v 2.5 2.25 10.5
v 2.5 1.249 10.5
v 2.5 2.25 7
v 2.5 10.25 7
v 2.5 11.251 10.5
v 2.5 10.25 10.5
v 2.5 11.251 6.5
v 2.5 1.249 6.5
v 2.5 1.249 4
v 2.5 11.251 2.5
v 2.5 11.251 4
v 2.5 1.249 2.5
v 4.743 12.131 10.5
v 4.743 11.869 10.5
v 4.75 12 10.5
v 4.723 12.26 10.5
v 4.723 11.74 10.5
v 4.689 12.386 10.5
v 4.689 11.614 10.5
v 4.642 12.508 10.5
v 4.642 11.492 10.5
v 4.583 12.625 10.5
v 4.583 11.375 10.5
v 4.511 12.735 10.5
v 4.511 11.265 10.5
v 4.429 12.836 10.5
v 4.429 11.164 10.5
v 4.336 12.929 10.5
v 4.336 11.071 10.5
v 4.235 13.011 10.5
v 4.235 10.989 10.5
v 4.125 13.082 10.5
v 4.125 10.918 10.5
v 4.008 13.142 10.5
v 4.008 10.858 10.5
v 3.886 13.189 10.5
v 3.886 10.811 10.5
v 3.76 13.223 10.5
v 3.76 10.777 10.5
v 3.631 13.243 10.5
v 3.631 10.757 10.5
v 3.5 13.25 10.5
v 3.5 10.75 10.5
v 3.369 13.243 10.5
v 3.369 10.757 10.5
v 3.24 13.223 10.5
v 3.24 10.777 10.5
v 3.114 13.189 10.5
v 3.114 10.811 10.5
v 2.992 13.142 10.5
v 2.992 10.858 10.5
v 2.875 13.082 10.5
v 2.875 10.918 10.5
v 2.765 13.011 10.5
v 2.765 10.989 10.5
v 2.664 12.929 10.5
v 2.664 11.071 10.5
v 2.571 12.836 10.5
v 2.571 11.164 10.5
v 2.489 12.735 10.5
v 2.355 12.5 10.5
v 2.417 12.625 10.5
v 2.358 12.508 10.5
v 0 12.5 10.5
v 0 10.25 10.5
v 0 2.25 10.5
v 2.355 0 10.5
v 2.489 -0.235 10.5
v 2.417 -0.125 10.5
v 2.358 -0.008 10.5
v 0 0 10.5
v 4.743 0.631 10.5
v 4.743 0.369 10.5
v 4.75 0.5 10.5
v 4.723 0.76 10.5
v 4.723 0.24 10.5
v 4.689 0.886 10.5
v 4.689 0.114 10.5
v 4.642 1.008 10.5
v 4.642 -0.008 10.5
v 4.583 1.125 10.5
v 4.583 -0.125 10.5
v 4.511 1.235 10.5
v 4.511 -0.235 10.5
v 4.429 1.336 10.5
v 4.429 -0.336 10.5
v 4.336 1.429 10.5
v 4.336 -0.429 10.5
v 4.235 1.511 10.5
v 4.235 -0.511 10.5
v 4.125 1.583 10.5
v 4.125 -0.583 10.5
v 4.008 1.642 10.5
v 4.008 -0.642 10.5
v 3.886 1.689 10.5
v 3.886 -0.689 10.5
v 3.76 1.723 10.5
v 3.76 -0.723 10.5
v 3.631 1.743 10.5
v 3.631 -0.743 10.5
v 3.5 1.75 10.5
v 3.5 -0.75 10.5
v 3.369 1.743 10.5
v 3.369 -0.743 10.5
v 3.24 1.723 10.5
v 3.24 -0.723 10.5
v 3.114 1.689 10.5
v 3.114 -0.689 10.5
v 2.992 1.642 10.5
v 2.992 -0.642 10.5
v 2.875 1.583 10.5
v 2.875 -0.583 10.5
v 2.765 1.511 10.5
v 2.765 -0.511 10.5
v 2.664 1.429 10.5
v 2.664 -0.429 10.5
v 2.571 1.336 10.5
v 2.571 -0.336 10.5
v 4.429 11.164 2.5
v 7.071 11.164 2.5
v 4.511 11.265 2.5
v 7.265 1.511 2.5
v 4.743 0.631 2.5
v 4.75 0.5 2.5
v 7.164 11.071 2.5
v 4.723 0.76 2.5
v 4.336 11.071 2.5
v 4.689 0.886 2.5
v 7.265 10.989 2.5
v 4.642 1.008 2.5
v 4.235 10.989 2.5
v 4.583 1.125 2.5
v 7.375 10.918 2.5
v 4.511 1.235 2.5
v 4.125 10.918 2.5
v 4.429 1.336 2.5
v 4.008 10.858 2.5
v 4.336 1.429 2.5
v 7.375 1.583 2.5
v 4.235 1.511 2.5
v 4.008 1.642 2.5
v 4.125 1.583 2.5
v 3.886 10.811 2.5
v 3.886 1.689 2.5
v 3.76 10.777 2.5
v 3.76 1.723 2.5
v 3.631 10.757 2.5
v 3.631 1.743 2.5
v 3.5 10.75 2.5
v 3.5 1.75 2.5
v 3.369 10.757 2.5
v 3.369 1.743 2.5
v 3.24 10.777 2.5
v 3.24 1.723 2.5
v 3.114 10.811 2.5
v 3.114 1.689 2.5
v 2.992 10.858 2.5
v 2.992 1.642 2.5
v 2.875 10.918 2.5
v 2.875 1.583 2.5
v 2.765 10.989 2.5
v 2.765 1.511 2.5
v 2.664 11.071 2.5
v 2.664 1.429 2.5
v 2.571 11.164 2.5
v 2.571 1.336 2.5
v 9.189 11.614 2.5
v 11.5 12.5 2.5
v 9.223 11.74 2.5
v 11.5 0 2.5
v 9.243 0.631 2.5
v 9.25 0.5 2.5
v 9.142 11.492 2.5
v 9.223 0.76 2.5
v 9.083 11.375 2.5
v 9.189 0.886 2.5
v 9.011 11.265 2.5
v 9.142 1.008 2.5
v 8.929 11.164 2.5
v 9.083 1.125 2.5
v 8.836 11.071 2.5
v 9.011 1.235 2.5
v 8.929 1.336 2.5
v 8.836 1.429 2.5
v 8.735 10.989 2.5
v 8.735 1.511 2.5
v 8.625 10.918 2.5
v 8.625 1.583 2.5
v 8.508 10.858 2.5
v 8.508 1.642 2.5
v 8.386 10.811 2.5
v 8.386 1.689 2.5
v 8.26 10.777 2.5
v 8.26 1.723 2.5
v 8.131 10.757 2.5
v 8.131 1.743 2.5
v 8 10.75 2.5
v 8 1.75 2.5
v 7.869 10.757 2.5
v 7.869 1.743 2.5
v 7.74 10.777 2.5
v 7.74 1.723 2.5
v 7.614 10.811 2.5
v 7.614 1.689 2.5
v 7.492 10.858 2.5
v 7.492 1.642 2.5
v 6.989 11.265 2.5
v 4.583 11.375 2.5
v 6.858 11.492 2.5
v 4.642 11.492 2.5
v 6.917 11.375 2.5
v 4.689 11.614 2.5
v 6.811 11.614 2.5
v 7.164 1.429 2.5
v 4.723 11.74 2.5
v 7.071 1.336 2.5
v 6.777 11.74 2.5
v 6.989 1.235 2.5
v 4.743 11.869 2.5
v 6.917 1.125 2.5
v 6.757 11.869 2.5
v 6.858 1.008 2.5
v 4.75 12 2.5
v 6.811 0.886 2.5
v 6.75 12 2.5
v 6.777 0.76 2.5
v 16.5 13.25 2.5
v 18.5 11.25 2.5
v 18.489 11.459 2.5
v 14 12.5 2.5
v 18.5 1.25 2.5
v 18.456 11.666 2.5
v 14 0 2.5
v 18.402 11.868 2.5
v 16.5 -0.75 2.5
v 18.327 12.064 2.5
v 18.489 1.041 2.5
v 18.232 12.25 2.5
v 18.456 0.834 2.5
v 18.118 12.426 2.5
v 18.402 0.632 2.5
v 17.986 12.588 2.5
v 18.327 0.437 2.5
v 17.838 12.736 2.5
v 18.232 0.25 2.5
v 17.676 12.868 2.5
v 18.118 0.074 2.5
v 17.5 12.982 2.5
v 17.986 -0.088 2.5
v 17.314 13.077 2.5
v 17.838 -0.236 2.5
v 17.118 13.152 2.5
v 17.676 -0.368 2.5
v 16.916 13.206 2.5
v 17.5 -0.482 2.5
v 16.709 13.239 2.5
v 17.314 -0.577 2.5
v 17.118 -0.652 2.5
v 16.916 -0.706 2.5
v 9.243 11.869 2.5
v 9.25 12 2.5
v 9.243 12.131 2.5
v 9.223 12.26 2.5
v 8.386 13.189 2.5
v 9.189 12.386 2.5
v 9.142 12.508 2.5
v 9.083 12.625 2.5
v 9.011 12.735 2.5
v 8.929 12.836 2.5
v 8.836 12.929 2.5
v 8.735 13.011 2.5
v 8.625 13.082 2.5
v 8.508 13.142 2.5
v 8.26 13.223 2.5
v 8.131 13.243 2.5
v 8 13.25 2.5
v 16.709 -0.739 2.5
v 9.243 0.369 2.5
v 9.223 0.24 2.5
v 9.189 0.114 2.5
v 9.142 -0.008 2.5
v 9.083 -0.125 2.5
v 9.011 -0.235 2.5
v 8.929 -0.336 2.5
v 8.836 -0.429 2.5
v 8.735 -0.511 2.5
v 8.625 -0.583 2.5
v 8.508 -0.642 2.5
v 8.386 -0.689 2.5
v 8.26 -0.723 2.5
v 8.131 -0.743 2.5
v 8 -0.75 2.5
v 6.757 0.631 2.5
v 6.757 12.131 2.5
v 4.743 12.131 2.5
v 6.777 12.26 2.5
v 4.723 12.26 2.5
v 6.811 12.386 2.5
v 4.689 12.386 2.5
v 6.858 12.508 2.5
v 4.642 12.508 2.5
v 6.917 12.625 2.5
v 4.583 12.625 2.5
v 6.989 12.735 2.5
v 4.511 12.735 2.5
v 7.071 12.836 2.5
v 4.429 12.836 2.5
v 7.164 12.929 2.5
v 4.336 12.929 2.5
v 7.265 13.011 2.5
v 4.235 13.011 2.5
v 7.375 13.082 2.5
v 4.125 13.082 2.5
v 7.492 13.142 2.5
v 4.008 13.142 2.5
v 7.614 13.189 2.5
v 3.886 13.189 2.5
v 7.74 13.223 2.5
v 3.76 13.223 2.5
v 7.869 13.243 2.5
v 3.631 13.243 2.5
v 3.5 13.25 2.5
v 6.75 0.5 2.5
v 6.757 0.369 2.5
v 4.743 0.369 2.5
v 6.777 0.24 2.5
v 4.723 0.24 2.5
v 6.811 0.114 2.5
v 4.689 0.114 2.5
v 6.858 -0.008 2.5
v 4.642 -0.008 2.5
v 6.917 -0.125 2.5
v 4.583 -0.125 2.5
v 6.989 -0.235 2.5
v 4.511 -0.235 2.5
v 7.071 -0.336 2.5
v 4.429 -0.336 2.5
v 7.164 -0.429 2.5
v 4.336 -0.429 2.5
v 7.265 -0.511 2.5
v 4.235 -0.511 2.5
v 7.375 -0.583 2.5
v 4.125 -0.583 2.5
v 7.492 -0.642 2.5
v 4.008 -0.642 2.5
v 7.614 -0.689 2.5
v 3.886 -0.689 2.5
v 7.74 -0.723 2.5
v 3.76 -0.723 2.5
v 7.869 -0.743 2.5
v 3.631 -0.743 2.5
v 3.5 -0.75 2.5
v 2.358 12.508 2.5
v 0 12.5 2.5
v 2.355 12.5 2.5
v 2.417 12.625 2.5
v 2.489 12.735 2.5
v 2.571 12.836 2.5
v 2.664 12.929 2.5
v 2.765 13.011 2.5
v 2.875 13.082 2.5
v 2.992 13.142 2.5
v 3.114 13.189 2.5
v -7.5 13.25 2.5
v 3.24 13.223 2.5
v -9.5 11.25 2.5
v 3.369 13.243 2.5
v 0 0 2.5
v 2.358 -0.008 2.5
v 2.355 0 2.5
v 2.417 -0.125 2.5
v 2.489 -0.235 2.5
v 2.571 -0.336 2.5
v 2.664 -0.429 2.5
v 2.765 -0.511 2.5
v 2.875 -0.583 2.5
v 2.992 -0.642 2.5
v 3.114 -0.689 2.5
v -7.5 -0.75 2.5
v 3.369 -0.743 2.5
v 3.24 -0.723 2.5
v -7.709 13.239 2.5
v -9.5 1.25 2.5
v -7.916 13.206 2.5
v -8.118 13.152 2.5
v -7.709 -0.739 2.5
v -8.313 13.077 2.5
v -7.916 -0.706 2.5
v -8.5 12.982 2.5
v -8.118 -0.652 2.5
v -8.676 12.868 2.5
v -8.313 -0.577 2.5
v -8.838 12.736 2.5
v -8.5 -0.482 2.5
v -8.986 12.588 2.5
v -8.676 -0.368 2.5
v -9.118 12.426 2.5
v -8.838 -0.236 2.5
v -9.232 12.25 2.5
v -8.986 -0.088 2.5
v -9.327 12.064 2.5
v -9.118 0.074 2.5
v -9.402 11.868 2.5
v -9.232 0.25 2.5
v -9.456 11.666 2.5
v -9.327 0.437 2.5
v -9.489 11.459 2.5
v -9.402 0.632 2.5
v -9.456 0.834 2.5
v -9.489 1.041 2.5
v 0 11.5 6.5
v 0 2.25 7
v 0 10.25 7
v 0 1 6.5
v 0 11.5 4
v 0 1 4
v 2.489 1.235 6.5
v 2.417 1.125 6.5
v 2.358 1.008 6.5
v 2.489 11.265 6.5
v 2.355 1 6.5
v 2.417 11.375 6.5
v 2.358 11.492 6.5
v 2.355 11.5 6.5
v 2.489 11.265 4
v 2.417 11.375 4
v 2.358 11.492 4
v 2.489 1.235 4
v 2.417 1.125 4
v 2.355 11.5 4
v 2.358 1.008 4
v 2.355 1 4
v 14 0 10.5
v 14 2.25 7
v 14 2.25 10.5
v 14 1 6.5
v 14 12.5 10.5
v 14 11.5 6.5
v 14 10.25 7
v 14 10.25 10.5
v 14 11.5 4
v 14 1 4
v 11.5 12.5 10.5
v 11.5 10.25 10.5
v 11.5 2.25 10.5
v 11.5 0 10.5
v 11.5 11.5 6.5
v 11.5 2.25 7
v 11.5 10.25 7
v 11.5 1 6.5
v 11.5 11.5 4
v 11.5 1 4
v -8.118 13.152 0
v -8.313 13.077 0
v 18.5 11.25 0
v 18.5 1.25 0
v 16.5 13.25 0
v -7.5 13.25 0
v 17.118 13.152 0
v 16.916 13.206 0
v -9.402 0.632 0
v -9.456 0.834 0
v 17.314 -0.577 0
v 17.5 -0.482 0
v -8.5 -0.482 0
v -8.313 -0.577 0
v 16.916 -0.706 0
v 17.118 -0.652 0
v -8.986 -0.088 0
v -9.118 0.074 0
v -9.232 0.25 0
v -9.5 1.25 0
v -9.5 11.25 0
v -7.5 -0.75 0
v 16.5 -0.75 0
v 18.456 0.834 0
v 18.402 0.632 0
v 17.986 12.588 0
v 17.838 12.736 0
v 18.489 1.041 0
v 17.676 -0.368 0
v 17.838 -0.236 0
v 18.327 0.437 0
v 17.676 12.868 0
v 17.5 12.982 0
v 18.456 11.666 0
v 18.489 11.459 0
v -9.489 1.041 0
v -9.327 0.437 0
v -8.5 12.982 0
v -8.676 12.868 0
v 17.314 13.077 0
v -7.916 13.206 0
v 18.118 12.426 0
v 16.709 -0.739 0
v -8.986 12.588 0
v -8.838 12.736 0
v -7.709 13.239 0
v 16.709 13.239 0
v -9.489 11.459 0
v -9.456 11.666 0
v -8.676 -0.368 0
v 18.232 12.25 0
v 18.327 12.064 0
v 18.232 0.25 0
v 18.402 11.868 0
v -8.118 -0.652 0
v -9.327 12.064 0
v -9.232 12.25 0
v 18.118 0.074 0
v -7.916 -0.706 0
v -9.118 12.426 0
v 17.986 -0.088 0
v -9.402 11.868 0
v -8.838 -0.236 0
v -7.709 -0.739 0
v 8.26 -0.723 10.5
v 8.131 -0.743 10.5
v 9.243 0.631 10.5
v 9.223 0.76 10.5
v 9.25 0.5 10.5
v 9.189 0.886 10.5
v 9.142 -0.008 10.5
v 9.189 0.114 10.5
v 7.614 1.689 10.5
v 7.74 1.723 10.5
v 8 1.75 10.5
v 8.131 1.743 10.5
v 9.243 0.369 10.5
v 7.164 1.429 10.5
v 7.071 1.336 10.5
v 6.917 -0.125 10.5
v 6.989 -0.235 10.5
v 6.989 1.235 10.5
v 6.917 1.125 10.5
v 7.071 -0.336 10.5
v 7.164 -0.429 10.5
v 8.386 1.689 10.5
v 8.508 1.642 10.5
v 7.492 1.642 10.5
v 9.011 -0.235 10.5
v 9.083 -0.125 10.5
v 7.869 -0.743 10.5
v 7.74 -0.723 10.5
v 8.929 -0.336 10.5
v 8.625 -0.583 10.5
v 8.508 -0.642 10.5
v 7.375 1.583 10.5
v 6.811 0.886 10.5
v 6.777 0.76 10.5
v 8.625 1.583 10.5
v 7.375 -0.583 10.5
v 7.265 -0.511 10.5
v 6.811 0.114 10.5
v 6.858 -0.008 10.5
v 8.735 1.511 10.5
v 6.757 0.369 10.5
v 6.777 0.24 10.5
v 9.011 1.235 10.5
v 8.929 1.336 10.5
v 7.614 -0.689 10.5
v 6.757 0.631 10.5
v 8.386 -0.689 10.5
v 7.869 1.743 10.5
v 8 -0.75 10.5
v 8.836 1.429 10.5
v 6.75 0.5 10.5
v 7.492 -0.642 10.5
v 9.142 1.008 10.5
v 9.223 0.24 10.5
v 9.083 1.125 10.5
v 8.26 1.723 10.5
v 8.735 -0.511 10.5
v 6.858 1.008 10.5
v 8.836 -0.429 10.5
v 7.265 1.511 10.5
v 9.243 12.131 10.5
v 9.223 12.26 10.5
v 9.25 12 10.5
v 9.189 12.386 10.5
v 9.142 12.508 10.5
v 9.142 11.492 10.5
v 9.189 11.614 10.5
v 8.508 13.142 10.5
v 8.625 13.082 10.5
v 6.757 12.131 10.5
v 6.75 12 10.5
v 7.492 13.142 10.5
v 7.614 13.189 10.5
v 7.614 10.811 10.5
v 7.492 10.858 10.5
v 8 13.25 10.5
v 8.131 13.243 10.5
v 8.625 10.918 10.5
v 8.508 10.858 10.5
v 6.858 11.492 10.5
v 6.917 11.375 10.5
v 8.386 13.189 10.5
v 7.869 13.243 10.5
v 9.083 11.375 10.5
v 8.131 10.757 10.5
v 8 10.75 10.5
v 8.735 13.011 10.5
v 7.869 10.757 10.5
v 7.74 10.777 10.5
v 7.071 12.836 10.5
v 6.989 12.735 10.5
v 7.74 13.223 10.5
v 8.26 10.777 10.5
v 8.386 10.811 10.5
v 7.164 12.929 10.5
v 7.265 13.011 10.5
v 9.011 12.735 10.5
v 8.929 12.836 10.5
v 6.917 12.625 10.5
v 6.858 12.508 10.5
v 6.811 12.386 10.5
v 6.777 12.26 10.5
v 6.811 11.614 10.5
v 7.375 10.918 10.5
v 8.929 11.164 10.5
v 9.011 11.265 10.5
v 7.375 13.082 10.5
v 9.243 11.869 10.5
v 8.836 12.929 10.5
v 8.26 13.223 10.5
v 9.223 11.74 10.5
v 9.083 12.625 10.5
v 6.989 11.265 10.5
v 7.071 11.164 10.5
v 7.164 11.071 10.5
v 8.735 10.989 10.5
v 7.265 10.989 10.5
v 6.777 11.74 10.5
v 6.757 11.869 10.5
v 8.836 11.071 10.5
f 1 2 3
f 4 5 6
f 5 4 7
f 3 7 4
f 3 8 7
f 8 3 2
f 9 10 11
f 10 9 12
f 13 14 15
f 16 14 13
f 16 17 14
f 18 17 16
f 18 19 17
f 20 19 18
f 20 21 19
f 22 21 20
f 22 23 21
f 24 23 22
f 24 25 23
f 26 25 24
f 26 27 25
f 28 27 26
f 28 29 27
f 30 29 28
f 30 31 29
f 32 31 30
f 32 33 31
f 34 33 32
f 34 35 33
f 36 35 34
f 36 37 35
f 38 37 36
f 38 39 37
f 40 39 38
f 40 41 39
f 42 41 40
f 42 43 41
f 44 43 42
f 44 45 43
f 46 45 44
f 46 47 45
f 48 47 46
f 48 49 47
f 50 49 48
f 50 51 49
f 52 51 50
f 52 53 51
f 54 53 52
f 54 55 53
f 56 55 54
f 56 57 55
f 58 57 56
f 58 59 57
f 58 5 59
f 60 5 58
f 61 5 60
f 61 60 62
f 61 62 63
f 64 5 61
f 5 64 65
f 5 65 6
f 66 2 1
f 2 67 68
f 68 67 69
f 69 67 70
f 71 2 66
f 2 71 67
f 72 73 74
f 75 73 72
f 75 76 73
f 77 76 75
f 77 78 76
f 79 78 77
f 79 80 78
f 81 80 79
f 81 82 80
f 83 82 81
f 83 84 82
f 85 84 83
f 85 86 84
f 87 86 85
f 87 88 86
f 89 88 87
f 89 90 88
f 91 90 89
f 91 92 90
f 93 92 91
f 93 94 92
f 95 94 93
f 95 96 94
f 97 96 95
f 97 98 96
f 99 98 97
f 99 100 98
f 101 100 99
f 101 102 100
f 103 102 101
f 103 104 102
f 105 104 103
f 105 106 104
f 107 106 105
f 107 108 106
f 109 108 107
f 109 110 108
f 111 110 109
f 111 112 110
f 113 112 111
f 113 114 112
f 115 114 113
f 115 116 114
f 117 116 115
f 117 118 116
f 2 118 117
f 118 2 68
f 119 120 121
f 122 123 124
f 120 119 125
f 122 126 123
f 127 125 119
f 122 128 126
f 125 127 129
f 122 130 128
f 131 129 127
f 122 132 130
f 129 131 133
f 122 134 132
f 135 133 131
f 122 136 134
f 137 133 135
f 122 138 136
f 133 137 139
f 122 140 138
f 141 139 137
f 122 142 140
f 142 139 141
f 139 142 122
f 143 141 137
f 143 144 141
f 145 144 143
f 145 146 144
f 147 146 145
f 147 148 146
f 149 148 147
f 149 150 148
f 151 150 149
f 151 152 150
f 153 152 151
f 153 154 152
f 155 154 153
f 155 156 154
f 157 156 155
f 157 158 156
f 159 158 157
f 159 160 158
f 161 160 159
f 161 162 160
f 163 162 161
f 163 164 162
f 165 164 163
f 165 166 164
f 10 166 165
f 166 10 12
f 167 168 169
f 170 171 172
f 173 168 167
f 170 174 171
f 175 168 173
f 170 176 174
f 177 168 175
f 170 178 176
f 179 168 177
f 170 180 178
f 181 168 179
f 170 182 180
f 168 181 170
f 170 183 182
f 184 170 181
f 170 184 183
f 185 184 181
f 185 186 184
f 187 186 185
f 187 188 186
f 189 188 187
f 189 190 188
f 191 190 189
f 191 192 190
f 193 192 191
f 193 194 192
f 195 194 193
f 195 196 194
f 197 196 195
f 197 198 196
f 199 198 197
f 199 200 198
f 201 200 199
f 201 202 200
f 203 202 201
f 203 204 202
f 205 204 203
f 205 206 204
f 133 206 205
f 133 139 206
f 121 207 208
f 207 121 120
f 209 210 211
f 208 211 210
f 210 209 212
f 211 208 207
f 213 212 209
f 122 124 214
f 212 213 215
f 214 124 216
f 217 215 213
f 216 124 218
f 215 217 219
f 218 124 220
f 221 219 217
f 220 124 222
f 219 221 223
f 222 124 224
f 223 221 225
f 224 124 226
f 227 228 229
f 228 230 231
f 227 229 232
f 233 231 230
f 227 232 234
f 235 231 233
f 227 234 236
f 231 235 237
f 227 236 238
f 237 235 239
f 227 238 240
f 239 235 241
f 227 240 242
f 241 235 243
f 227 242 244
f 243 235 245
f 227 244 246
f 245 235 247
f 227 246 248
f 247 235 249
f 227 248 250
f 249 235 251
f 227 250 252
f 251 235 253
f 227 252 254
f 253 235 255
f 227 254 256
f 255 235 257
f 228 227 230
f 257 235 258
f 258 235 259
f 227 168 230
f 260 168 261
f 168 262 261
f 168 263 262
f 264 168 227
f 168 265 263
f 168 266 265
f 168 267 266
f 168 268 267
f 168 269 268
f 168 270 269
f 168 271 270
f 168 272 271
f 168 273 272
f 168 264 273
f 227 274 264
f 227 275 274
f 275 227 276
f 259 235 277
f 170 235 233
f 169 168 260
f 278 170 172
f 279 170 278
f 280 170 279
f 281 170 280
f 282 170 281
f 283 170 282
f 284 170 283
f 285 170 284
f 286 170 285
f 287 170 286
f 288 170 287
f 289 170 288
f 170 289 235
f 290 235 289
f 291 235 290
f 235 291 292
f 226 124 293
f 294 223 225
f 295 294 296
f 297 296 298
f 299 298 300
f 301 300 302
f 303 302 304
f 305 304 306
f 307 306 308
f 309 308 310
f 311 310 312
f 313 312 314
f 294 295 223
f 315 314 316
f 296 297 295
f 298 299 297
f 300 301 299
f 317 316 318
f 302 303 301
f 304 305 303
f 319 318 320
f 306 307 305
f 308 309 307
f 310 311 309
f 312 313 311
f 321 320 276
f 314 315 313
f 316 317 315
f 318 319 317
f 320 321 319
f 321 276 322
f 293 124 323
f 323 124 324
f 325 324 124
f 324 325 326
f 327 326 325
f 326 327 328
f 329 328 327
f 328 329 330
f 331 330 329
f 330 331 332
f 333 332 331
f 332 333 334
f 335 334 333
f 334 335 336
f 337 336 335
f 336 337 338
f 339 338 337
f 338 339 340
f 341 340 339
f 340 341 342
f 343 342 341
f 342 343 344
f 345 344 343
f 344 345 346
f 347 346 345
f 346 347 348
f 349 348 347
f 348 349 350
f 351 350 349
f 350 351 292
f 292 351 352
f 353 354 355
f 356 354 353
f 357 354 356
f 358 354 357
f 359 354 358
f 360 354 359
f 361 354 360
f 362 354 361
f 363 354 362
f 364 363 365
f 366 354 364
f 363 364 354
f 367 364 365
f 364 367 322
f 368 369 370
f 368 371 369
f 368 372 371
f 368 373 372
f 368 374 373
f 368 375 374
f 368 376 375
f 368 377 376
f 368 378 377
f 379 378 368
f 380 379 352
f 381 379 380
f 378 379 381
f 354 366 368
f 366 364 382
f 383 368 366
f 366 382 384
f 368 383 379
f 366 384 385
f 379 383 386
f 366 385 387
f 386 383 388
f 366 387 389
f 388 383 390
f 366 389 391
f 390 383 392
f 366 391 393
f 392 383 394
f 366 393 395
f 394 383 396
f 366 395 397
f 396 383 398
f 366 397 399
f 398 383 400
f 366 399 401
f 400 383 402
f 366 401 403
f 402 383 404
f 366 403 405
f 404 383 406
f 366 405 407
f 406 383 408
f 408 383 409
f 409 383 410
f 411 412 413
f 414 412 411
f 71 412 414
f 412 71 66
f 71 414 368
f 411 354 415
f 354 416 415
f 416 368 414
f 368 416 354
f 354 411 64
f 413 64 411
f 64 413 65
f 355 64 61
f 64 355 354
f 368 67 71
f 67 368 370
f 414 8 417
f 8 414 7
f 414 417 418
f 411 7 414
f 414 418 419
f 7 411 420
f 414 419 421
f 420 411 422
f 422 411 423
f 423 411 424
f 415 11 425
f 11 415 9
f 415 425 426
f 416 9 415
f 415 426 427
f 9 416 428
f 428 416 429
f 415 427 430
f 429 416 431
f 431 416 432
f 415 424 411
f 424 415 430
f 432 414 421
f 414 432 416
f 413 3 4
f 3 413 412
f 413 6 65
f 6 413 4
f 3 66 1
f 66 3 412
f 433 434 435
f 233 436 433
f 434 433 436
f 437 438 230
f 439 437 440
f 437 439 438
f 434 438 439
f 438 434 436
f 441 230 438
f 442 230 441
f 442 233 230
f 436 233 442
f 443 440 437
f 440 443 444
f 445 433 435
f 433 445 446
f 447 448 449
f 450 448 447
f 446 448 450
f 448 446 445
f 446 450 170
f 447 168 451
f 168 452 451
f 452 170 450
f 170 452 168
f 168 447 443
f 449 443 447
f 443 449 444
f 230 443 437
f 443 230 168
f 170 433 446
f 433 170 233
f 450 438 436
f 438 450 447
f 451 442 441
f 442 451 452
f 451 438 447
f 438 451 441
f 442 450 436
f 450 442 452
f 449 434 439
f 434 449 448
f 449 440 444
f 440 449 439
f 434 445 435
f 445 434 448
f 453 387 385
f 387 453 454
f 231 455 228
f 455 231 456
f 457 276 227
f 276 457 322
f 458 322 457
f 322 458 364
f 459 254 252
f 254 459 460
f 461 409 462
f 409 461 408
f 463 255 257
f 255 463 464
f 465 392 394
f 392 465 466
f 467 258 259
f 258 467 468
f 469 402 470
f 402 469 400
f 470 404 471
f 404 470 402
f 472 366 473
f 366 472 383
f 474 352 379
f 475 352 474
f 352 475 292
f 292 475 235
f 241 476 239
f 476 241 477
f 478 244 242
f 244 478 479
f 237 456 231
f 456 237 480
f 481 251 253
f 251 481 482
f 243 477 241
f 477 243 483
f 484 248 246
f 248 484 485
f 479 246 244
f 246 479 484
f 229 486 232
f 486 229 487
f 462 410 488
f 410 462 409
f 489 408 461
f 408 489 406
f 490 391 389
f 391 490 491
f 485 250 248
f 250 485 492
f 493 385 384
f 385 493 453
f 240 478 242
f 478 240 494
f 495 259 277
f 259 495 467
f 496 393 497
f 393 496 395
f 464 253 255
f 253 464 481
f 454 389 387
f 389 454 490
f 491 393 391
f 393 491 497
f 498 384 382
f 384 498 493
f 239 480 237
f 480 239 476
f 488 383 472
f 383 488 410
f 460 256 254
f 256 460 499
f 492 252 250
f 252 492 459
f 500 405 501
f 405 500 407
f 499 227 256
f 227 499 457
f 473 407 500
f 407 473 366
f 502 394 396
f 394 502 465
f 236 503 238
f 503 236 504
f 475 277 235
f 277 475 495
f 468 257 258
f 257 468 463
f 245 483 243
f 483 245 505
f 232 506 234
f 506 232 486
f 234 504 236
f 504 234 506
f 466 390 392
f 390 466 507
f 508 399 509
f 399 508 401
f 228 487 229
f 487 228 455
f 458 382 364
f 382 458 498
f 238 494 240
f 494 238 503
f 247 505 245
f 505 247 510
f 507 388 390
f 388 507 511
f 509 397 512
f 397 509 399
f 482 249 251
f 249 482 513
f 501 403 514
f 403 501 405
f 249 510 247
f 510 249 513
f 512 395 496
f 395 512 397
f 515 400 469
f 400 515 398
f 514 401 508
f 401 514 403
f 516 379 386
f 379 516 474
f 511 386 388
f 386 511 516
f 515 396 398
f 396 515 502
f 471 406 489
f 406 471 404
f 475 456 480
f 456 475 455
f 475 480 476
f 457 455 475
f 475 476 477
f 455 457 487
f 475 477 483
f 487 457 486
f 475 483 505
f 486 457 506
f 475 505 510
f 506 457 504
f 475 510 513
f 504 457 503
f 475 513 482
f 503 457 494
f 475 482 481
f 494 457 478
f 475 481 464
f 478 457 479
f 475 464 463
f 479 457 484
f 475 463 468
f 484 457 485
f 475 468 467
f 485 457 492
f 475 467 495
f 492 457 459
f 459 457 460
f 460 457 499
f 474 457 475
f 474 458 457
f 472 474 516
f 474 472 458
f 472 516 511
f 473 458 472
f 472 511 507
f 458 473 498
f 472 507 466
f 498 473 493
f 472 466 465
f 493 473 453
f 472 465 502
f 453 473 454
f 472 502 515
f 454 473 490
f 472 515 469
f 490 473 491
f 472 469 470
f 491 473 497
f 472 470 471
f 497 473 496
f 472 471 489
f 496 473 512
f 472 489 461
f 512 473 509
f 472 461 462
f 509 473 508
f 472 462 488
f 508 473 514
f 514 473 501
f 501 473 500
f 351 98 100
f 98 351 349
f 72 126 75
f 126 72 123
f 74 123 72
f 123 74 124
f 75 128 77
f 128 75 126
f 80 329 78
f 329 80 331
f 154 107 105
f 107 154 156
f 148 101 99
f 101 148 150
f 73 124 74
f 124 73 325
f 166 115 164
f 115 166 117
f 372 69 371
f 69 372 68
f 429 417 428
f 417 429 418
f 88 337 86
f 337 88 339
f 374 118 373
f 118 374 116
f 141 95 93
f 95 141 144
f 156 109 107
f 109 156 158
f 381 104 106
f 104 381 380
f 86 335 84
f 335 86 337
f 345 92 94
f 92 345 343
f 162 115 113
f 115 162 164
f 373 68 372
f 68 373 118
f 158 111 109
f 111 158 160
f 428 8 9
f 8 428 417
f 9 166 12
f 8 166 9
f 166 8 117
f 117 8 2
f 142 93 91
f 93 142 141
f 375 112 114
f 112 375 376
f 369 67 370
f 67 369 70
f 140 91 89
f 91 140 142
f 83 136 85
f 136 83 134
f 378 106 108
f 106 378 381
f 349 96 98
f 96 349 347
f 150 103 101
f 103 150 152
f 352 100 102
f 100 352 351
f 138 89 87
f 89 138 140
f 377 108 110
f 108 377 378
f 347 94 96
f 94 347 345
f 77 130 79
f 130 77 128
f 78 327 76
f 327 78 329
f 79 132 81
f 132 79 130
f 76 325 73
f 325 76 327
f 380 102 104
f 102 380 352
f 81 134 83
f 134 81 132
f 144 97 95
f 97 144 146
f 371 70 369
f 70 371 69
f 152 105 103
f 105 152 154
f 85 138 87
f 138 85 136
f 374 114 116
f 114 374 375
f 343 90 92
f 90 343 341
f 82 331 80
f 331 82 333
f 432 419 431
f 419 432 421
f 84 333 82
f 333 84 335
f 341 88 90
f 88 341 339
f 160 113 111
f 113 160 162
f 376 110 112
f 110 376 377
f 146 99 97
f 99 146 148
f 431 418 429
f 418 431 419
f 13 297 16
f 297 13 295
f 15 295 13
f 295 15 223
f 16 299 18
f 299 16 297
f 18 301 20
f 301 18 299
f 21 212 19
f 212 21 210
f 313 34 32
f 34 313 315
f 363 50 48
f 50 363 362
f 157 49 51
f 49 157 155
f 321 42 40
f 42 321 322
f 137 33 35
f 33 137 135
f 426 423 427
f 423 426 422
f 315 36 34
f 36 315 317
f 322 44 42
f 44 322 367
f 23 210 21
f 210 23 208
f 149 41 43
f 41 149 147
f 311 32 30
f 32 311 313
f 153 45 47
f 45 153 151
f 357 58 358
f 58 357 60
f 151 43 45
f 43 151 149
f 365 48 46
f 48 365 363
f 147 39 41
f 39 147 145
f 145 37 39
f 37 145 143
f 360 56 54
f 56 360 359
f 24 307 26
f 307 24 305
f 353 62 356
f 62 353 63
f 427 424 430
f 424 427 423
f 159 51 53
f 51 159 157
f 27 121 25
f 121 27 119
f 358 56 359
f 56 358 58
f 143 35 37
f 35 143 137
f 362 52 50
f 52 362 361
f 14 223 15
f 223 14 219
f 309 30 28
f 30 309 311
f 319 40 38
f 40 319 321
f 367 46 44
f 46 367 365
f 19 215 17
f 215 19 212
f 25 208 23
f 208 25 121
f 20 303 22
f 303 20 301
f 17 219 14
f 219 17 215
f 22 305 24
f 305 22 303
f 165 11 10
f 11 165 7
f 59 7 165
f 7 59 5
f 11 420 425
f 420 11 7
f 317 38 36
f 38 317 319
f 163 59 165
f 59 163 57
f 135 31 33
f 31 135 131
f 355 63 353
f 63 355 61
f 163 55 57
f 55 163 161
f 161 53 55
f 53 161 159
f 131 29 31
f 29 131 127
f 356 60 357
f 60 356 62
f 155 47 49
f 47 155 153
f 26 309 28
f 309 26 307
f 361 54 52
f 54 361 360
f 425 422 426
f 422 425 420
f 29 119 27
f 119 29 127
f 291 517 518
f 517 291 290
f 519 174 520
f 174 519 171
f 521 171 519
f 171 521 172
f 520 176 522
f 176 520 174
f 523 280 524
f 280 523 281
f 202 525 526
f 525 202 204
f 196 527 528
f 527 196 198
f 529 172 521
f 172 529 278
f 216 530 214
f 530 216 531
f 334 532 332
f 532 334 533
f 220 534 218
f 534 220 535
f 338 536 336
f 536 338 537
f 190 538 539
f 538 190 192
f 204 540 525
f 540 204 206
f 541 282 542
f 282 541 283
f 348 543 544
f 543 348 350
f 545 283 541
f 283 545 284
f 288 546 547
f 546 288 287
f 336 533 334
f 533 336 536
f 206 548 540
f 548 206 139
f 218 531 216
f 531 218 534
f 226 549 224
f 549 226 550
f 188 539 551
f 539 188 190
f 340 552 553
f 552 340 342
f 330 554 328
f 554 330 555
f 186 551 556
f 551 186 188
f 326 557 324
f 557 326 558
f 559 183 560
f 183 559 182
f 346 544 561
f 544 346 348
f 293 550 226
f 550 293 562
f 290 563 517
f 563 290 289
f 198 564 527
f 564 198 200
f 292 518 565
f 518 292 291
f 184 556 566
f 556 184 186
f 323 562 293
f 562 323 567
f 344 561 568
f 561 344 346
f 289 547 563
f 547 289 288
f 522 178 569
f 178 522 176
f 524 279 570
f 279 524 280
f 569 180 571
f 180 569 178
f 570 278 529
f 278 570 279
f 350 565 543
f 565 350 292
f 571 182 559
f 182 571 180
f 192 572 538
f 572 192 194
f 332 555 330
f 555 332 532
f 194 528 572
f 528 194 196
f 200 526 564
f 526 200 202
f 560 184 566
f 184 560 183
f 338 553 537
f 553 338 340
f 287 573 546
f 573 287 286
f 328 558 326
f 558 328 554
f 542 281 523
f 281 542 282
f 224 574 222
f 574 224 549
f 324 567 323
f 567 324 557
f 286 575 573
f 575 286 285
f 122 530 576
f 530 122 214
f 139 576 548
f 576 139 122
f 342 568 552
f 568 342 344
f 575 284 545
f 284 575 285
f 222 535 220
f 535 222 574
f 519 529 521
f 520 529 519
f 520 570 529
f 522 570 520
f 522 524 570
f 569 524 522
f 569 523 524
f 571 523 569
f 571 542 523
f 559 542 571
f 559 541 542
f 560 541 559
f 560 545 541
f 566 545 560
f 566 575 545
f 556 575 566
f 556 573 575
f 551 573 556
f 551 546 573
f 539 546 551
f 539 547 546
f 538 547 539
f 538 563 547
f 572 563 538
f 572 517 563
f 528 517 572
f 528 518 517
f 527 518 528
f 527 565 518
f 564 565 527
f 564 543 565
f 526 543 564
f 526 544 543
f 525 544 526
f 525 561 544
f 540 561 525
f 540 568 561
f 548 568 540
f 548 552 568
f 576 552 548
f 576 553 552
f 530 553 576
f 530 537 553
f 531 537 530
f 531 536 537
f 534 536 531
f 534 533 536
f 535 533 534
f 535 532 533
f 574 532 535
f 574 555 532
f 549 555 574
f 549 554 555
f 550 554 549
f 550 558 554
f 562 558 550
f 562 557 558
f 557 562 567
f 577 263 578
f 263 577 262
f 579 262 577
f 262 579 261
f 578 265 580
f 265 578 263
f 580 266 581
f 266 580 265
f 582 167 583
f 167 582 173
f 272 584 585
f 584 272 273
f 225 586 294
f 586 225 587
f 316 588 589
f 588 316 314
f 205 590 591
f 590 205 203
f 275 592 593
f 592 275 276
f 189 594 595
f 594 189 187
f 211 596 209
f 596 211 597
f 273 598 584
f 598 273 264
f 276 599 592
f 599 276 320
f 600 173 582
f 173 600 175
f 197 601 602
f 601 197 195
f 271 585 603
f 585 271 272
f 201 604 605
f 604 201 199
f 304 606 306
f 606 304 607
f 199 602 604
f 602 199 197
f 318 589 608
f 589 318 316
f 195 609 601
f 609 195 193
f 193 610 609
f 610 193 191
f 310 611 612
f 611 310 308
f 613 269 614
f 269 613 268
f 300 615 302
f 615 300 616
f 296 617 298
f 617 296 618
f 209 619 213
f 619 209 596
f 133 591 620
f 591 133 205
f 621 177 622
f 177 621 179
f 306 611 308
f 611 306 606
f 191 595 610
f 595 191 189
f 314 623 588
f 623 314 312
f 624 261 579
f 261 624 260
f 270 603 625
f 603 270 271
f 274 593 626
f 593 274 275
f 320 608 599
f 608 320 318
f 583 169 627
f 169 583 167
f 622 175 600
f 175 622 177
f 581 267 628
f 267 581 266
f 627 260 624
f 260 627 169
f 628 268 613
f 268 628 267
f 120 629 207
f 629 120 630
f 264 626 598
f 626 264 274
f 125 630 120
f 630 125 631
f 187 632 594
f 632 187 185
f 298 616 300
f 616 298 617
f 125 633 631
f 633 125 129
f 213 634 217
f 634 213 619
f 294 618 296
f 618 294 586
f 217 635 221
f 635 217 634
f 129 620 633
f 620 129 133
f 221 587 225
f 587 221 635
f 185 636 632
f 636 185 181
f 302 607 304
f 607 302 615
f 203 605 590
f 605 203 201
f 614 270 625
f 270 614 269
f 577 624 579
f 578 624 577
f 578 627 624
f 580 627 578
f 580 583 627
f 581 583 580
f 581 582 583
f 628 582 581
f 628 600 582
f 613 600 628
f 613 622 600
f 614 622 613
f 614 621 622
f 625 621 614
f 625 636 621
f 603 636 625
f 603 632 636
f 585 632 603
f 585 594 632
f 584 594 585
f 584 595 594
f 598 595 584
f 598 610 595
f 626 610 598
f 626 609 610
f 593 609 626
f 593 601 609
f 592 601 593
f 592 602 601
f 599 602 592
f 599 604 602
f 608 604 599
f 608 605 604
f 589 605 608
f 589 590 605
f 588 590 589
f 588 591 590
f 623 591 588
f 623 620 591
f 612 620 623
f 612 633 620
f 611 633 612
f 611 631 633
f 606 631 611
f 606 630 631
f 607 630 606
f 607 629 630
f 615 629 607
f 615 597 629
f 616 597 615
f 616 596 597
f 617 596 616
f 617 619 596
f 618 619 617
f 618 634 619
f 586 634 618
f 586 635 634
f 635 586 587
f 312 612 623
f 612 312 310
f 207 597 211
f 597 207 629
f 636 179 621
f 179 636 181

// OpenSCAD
// ============================================================
// BME280 Sensor Pod — Closet Monitor
// ============================================================
// Design: open-air "lantern" style frame that holds the BME280
// breakout board between two end caps with vertical posts —
// maximum airflow on all sides. Flat back for VHB tape.
//
// Board: SHILLEHTEK pre-soldered BME280 breakout
//   Length: ~13mm
//   Width:  ~10mm
//   Thickness: ~2mm with components
//
// Print: PETG, 0.2mm layer, 30% infill, no supports needed
// ============================================================

$fn = 60;

// ---------- TUNABLE PARAMETERS ----------
// BME280 board
board_length = 13.5;
board_width  = 10.5;
board_thick  = 2.5;     // includes the sensor chip on top

// End caps that hold the board
endcap_thick    = 2.5;
endcap_height   = 8;
endcap_width_extra = 2;  // extra width past the board for grip slots

// Posts that connect the two end caps (the "lantern" structure)
post_count   = 4;        // one at each corner
post_diameter = 2.5;
post_spacing  = 9;       // distance between posts (becomes airflow gap)

// Mounting back-plate (flat surface for VHB tape)
backplate_length = 28;
backplate_width  = 14;
backplate_thick  = 2.5;

// Cable exit (where the 4 jumpers come from the ESP32 case)
cable_notch_width  = 8;
cable_notch_height = 4;

// ---------- DERIVED ----------
endcap_total_width = board_width + endcap_width_extra;

// ============================================================
// MAIN ASSEMBLY
// ============================================================
module sensor_pod() {

    // ---------- BACKPLATE (for VHB adhesive mounting) ----------
    translate([-((backplate_length - post_spacing) / 2), -((backplate_width - endcap_total_width) / 2), 0])
        rounded_plate(backplate_length, backplate_width, backplate_thick, r=2);

    // ---------- LEFT END CAP (with PCB slot) ----------
    translate([0, 0, backplate_thick])
        endcap_with_slot();

    // ---------- RIGHT END CAP ----------
    translate([post_spacing + endcap_thick, 0, backplate_thick])
        endcap_with_slot();

    // ---------- CONNECTING POSTS (4 corners) ----------
    // The PCB is held between the two end caps; posts give airflow on all sides
    post_z = backplate_thick;
    post_h = endcap_height;

    // Top-front
    translate([endcap_thick + 1, 0.5, post_z])
        cylinder(h=post_h, d=post_diameter);
    // Top-back
    translate([endcap_thick + 1, endcap_total_width - 0.5, post_z])
        cylinder(h=post_h, d=post_diameter);
    // Bottom-front
    translate([post_spacing - 1, 0.5, post_z])
        cylinder(h=post_h, d=post_diameter);
    // Bottom-back
    translate([post_spacing - 1, endcap_total_width - 0.5, post_z])
        cylinder(h=post_h, d=post_diameter);
}

// End cap with a slot that the BME280 board slides into
module endcap_with_slot() {
    difference() {
        cube([endcap_thick, endcap_total_width, endcap_height]);

        // Slot for the PCB
        translate([-0.5, (endcap_total_width - board_width) / 2, 1.5])
            cube([endcap_thick + 1, board_width, board_thick]);

        // Cable notch on one end cap
        translate([-0.5, (endcap_total_width - cable_notch_width) / 2, endcap_height - cable_notch_height + 0.5])
            cube([endcap_thick + 1, cable_notch_width, cable_notch_height]);
    }
}

// Rounded plate helper
module rounded_plate(l, w, h, r=2) {
    hull() {
        for (x = [r, l - r]) {
            for (y = [r, w - r]) {
                translate([x, y, 0])
                    cylinder(h=h, r=r);
            }
        }
    }
}

// ============================================================
// RENDER
// ============================================================
sensor_pod();
